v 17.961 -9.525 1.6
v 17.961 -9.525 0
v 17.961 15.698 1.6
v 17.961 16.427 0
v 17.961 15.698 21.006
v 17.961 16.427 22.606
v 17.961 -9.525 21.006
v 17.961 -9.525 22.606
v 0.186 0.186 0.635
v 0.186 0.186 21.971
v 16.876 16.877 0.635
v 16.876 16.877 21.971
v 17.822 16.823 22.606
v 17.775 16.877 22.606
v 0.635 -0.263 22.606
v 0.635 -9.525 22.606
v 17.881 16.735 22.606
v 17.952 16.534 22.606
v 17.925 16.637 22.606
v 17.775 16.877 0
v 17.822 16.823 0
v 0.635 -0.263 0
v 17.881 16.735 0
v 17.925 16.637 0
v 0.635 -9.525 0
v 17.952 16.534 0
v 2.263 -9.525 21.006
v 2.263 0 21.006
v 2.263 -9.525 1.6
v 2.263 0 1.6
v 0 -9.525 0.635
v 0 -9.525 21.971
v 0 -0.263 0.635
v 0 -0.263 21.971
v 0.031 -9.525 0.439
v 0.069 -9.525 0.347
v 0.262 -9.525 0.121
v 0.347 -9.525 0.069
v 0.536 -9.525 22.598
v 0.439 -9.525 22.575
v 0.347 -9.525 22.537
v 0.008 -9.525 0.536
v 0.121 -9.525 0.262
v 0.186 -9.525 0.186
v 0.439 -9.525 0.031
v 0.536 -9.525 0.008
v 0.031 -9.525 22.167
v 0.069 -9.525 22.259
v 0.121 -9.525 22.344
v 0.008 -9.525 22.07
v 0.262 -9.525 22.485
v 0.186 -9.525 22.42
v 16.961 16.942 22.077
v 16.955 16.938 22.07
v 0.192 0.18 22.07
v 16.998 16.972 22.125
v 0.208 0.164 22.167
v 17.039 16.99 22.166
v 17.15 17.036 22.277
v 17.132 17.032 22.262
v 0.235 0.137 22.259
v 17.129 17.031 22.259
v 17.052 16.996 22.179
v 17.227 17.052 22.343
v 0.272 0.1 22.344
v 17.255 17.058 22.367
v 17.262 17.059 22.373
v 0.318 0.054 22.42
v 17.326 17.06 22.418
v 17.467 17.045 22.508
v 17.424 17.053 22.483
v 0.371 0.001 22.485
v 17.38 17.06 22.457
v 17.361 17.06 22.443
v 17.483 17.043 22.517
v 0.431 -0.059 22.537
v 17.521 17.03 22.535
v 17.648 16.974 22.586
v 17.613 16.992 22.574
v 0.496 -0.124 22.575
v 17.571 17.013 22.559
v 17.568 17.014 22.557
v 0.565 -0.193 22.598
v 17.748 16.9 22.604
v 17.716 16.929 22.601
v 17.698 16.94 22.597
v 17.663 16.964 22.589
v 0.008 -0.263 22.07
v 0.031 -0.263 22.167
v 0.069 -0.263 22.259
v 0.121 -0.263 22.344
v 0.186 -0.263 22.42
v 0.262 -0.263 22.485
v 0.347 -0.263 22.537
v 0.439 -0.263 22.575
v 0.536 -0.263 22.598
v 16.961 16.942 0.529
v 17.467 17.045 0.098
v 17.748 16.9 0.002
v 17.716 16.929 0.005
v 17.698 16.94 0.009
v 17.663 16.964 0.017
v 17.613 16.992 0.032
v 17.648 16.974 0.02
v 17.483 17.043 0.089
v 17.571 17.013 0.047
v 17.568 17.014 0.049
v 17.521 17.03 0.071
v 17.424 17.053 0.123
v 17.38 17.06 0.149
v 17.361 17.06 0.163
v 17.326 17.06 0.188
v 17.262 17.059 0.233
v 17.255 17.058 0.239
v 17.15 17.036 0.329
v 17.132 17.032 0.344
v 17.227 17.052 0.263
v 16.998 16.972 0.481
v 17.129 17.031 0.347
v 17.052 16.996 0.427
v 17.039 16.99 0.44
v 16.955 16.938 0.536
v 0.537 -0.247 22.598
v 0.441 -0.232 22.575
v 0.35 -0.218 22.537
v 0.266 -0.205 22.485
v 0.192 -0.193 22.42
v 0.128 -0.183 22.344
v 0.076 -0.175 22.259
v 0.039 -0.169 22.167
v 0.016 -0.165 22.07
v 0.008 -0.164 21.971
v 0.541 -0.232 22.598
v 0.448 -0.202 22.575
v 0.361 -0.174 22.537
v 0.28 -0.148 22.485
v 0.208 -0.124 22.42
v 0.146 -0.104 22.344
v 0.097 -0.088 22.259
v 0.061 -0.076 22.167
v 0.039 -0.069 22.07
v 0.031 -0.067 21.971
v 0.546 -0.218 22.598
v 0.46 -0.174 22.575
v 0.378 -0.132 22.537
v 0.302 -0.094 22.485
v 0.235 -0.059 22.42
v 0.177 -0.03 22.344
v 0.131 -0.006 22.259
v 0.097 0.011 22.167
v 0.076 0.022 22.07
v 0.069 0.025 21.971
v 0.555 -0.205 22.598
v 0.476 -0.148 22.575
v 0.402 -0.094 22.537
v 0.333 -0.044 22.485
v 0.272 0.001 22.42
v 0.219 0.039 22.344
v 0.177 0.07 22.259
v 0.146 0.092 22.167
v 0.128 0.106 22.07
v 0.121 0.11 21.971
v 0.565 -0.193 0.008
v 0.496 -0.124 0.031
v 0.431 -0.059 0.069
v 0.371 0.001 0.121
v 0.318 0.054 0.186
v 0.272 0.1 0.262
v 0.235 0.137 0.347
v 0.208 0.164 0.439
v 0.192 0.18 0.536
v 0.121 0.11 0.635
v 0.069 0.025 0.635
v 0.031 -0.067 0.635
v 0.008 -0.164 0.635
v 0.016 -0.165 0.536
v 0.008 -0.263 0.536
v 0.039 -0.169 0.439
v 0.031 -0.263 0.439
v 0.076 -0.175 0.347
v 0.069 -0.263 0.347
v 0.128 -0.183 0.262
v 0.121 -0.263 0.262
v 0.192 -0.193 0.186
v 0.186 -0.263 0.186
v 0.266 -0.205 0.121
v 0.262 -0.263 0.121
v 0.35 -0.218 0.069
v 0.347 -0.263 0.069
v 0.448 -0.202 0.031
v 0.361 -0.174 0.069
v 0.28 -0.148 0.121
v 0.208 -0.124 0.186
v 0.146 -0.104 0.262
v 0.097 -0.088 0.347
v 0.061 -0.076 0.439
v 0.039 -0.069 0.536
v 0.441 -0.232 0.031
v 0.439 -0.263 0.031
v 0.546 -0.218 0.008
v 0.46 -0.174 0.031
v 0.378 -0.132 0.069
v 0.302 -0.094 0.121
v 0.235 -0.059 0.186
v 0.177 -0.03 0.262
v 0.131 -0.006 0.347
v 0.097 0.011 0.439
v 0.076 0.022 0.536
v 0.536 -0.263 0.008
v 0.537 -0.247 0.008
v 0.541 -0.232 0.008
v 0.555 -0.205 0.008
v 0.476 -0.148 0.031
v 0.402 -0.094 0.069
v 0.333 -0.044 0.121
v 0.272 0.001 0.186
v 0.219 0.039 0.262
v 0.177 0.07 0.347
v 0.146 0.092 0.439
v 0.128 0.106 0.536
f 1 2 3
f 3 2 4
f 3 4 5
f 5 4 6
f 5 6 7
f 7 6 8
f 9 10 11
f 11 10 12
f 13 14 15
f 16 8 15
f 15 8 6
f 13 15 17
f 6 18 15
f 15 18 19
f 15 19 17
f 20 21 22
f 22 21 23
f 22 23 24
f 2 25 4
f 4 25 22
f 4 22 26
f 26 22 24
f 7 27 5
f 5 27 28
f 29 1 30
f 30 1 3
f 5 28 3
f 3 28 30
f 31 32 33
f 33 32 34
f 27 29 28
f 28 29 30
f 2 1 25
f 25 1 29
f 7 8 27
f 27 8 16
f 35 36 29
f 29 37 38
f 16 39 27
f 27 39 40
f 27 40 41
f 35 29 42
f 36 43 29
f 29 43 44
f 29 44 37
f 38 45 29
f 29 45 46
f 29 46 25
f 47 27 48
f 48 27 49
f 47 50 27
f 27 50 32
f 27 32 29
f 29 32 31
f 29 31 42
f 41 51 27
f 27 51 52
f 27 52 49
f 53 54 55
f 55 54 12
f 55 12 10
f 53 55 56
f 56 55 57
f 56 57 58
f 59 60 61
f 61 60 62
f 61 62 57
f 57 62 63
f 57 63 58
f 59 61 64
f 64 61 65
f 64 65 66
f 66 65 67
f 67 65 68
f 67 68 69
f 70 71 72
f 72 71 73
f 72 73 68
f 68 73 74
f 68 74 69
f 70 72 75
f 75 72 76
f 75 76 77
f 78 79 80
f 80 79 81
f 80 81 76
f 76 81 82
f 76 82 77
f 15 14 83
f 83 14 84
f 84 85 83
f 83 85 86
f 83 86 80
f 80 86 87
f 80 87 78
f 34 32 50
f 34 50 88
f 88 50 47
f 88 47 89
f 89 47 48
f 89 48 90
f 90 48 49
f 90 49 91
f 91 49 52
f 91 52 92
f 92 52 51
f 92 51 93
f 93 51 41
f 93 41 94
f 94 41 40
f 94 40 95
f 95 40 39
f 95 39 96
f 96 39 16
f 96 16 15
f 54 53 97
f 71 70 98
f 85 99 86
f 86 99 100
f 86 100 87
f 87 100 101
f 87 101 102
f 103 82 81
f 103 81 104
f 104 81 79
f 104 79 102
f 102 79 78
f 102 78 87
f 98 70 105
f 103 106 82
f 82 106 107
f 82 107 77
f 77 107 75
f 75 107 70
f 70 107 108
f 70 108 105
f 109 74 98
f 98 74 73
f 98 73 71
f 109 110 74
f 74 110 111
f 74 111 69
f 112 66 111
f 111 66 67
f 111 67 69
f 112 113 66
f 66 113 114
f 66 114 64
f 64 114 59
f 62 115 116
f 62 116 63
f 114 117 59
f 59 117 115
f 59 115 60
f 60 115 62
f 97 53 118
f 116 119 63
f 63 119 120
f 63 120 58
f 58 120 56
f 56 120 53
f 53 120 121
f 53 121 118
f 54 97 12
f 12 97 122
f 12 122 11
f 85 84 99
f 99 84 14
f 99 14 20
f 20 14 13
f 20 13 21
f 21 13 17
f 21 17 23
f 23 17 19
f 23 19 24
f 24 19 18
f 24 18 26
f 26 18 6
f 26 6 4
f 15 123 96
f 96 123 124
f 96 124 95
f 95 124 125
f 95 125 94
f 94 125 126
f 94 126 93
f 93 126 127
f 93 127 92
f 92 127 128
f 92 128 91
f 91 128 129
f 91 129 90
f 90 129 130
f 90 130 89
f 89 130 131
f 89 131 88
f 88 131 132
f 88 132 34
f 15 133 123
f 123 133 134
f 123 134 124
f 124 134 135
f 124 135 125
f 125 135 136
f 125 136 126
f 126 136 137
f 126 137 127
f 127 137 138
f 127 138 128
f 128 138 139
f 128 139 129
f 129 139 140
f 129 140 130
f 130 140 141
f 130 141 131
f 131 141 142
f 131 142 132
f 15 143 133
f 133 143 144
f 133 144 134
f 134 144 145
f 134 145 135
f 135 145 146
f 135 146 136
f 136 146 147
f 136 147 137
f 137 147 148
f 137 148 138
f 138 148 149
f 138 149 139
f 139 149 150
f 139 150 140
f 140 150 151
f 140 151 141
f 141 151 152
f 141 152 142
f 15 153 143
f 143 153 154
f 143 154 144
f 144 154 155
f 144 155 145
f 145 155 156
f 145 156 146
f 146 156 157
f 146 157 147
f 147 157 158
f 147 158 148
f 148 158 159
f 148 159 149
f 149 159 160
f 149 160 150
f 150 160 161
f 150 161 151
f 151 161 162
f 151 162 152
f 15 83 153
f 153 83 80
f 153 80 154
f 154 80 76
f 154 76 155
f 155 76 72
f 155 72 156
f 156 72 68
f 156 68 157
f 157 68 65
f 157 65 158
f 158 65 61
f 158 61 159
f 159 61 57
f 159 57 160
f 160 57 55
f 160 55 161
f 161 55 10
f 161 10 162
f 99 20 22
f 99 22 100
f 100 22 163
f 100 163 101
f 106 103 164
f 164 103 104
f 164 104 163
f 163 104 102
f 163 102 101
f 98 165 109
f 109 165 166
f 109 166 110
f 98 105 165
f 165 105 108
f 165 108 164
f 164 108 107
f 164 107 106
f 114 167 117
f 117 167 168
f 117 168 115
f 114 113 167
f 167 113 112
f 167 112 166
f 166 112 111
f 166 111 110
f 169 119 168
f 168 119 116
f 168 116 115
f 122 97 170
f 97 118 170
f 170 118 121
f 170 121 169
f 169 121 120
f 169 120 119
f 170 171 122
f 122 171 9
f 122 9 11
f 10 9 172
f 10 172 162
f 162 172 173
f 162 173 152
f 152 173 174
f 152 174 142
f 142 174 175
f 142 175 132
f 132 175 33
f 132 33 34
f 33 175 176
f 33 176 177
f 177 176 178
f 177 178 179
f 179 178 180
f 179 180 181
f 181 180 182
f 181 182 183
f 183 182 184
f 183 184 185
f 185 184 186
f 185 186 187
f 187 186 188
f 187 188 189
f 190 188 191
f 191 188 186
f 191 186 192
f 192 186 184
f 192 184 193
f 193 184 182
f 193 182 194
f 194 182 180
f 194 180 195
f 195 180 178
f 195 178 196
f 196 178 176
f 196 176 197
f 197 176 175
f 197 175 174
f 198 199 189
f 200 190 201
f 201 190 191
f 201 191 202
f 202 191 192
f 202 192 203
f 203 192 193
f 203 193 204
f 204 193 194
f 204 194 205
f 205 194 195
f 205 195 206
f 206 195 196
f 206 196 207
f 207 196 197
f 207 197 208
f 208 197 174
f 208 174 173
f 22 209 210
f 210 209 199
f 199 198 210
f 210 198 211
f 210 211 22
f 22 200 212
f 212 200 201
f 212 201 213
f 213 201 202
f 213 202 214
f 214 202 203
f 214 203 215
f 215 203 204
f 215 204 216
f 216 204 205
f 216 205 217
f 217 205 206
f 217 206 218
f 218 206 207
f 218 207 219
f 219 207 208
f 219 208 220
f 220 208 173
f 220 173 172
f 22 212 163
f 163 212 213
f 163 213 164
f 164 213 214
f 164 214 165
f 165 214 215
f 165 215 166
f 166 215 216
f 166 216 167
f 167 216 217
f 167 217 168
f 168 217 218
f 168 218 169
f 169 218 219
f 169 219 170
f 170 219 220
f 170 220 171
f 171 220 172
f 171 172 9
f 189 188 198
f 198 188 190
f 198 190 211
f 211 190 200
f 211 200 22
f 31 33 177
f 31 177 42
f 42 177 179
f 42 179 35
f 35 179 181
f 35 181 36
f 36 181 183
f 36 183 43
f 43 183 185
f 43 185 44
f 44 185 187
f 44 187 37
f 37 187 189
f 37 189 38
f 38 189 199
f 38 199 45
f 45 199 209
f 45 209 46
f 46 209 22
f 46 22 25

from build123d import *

# Parameters (mm, degrees)
BOSS_EXTRUDE1_DEPTH              = 22.606
CUT_EXTRUDE1_REACH               = 21.561
CUT_EXTRUDE1_OFFSET_FROM_SURFACE = 1.6
SKETCH2_W                        = 19.406
SKETCH2_H                        = 16.360512242
BOSS_EXTRUDE2_DEPTH              = 9.525
FILLET1_R                        = 0.635


with BuildPart() as part:
    # Sketch1 → Boss-Extrude1 (new body)
    with BuildSketch(Plane.XY):
        Polygon((0, 0), (17.960512242, 17.960512242), (17.960512242, 0), align=None)
    extrude(amount=BOSS_EXTRUDE1_DEPTH)

    # Cut-Extrude1: up to this face of the body (flat: up to its plane, moved by the offset)
    cut_extrude1_end = Plane(part.part.faces().sort_by_distance((8.980256121, 8.980256121, 11.303))[0]).offset(-CUT_EXTRUDE1_OFFSET_FROM_SURFACE)
    # Sketch2 → Cut-Extrude1 (cut, up to the picked face)
    with BuildSketch(Plane(origin=(17.960512242, 0, 0), x_dir=(0, 0, -1), z_dir=(1, 0, 0)), mode=Mode.PRIVATE) as cut_extrude1_sk1:
        with Locations((-11.303, 8.180256121)):
            Rectangle(SKETCH2_W, SKETCH2_H)
    cut_extrude1_tool1 = split(extrude(cut_extrude1_sk1.sketch, amount=-CUT_EXTRUDE1_REACH, mode=Mode.PRIVATE), bisect_by=cut_extrude1_end, keep=Keep.BOTH, mode=Mode.PRIVATE)
    add(cut_extrude1_tool1.solids().sort_by_distance((17.960512, 8.180256, 11.303))[0], mode=Mode.SUBTRACT)

    # Sketch3 → Boss-Extrude2 (add)
    with BuildSketch(Plane.XZ):
        Polygon((17.960512242, 22.606), (0, 22.606), (0, 0), (17.960512242, 0), (17.960512242, 1.6), (2.2627417, 1.6), (2.2627417, 21.006), (17.960512242, 21.006), align=None)
    extrude(amount=BOSS_EXTRUDE2_DEPTH)

    # Fillet1
    fillet1_edges = [part.edges().sort_by_distance(p)[0] for p in [
        (8.980256121, 8.980256121, 22.606),
        (0, -4.7625, 22.606),
        (0, -4.7625, 0),
        (8.980256121, 8.980256121, 0),
        (0, 0, 11.303),
        (17.960512242, 17.960512242, 11.303),
    ]]
    fillet(fillet1_edges, radius=FILLET1_R)


solid = part.part
